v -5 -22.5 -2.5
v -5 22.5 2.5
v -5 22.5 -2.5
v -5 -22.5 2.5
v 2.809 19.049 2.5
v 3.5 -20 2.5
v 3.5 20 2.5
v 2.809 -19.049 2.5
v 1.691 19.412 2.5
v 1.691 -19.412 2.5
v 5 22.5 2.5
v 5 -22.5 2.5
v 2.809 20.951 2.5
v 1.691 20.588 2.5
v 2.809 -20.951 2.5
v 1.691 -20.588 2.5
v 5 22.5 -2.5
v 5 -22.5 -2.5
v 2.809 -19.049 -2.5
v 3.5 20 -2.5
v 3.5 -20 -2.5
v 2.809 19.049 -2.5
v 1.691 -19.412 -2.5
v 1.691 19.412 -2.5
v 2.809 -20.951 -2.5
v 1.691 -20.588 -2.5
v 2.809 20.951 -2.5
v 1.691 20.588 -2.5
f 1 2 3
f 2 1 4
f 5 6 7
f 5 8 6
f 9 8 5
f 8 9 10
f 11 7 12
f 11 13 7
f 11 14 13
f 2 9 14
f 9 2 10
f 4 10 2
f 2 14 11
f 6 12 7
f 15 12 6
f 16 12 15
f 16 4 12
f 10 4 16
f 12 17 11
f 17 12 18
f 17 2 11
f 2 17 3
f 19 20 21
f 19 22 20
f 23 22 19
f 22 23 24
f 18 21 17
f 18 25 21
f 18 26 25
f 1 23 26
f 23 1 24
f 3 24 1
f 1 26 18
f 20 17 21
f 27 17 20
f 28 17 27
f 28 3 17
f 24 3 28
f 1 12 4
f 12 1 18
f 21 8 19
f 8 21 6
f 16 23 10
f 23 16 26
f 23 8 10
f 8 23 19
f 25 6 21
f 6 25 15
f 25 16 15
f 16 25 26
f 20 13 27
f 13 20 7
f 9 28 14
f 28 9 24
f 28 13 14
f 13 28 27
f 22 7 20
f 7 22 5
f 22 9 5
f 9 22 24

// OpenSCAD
difference(){
    // Claw shaft
    scale([10,45,5]) cube(1,1,1, center=true);
    
    // Left pull hole
    translate([2.5,-20,0]) cylinder(d=2,h=10, center=true);
    
    // Right pull hole
    translate([2.5,20,0]) cylinder(d=2,h=10, center=true);
}
